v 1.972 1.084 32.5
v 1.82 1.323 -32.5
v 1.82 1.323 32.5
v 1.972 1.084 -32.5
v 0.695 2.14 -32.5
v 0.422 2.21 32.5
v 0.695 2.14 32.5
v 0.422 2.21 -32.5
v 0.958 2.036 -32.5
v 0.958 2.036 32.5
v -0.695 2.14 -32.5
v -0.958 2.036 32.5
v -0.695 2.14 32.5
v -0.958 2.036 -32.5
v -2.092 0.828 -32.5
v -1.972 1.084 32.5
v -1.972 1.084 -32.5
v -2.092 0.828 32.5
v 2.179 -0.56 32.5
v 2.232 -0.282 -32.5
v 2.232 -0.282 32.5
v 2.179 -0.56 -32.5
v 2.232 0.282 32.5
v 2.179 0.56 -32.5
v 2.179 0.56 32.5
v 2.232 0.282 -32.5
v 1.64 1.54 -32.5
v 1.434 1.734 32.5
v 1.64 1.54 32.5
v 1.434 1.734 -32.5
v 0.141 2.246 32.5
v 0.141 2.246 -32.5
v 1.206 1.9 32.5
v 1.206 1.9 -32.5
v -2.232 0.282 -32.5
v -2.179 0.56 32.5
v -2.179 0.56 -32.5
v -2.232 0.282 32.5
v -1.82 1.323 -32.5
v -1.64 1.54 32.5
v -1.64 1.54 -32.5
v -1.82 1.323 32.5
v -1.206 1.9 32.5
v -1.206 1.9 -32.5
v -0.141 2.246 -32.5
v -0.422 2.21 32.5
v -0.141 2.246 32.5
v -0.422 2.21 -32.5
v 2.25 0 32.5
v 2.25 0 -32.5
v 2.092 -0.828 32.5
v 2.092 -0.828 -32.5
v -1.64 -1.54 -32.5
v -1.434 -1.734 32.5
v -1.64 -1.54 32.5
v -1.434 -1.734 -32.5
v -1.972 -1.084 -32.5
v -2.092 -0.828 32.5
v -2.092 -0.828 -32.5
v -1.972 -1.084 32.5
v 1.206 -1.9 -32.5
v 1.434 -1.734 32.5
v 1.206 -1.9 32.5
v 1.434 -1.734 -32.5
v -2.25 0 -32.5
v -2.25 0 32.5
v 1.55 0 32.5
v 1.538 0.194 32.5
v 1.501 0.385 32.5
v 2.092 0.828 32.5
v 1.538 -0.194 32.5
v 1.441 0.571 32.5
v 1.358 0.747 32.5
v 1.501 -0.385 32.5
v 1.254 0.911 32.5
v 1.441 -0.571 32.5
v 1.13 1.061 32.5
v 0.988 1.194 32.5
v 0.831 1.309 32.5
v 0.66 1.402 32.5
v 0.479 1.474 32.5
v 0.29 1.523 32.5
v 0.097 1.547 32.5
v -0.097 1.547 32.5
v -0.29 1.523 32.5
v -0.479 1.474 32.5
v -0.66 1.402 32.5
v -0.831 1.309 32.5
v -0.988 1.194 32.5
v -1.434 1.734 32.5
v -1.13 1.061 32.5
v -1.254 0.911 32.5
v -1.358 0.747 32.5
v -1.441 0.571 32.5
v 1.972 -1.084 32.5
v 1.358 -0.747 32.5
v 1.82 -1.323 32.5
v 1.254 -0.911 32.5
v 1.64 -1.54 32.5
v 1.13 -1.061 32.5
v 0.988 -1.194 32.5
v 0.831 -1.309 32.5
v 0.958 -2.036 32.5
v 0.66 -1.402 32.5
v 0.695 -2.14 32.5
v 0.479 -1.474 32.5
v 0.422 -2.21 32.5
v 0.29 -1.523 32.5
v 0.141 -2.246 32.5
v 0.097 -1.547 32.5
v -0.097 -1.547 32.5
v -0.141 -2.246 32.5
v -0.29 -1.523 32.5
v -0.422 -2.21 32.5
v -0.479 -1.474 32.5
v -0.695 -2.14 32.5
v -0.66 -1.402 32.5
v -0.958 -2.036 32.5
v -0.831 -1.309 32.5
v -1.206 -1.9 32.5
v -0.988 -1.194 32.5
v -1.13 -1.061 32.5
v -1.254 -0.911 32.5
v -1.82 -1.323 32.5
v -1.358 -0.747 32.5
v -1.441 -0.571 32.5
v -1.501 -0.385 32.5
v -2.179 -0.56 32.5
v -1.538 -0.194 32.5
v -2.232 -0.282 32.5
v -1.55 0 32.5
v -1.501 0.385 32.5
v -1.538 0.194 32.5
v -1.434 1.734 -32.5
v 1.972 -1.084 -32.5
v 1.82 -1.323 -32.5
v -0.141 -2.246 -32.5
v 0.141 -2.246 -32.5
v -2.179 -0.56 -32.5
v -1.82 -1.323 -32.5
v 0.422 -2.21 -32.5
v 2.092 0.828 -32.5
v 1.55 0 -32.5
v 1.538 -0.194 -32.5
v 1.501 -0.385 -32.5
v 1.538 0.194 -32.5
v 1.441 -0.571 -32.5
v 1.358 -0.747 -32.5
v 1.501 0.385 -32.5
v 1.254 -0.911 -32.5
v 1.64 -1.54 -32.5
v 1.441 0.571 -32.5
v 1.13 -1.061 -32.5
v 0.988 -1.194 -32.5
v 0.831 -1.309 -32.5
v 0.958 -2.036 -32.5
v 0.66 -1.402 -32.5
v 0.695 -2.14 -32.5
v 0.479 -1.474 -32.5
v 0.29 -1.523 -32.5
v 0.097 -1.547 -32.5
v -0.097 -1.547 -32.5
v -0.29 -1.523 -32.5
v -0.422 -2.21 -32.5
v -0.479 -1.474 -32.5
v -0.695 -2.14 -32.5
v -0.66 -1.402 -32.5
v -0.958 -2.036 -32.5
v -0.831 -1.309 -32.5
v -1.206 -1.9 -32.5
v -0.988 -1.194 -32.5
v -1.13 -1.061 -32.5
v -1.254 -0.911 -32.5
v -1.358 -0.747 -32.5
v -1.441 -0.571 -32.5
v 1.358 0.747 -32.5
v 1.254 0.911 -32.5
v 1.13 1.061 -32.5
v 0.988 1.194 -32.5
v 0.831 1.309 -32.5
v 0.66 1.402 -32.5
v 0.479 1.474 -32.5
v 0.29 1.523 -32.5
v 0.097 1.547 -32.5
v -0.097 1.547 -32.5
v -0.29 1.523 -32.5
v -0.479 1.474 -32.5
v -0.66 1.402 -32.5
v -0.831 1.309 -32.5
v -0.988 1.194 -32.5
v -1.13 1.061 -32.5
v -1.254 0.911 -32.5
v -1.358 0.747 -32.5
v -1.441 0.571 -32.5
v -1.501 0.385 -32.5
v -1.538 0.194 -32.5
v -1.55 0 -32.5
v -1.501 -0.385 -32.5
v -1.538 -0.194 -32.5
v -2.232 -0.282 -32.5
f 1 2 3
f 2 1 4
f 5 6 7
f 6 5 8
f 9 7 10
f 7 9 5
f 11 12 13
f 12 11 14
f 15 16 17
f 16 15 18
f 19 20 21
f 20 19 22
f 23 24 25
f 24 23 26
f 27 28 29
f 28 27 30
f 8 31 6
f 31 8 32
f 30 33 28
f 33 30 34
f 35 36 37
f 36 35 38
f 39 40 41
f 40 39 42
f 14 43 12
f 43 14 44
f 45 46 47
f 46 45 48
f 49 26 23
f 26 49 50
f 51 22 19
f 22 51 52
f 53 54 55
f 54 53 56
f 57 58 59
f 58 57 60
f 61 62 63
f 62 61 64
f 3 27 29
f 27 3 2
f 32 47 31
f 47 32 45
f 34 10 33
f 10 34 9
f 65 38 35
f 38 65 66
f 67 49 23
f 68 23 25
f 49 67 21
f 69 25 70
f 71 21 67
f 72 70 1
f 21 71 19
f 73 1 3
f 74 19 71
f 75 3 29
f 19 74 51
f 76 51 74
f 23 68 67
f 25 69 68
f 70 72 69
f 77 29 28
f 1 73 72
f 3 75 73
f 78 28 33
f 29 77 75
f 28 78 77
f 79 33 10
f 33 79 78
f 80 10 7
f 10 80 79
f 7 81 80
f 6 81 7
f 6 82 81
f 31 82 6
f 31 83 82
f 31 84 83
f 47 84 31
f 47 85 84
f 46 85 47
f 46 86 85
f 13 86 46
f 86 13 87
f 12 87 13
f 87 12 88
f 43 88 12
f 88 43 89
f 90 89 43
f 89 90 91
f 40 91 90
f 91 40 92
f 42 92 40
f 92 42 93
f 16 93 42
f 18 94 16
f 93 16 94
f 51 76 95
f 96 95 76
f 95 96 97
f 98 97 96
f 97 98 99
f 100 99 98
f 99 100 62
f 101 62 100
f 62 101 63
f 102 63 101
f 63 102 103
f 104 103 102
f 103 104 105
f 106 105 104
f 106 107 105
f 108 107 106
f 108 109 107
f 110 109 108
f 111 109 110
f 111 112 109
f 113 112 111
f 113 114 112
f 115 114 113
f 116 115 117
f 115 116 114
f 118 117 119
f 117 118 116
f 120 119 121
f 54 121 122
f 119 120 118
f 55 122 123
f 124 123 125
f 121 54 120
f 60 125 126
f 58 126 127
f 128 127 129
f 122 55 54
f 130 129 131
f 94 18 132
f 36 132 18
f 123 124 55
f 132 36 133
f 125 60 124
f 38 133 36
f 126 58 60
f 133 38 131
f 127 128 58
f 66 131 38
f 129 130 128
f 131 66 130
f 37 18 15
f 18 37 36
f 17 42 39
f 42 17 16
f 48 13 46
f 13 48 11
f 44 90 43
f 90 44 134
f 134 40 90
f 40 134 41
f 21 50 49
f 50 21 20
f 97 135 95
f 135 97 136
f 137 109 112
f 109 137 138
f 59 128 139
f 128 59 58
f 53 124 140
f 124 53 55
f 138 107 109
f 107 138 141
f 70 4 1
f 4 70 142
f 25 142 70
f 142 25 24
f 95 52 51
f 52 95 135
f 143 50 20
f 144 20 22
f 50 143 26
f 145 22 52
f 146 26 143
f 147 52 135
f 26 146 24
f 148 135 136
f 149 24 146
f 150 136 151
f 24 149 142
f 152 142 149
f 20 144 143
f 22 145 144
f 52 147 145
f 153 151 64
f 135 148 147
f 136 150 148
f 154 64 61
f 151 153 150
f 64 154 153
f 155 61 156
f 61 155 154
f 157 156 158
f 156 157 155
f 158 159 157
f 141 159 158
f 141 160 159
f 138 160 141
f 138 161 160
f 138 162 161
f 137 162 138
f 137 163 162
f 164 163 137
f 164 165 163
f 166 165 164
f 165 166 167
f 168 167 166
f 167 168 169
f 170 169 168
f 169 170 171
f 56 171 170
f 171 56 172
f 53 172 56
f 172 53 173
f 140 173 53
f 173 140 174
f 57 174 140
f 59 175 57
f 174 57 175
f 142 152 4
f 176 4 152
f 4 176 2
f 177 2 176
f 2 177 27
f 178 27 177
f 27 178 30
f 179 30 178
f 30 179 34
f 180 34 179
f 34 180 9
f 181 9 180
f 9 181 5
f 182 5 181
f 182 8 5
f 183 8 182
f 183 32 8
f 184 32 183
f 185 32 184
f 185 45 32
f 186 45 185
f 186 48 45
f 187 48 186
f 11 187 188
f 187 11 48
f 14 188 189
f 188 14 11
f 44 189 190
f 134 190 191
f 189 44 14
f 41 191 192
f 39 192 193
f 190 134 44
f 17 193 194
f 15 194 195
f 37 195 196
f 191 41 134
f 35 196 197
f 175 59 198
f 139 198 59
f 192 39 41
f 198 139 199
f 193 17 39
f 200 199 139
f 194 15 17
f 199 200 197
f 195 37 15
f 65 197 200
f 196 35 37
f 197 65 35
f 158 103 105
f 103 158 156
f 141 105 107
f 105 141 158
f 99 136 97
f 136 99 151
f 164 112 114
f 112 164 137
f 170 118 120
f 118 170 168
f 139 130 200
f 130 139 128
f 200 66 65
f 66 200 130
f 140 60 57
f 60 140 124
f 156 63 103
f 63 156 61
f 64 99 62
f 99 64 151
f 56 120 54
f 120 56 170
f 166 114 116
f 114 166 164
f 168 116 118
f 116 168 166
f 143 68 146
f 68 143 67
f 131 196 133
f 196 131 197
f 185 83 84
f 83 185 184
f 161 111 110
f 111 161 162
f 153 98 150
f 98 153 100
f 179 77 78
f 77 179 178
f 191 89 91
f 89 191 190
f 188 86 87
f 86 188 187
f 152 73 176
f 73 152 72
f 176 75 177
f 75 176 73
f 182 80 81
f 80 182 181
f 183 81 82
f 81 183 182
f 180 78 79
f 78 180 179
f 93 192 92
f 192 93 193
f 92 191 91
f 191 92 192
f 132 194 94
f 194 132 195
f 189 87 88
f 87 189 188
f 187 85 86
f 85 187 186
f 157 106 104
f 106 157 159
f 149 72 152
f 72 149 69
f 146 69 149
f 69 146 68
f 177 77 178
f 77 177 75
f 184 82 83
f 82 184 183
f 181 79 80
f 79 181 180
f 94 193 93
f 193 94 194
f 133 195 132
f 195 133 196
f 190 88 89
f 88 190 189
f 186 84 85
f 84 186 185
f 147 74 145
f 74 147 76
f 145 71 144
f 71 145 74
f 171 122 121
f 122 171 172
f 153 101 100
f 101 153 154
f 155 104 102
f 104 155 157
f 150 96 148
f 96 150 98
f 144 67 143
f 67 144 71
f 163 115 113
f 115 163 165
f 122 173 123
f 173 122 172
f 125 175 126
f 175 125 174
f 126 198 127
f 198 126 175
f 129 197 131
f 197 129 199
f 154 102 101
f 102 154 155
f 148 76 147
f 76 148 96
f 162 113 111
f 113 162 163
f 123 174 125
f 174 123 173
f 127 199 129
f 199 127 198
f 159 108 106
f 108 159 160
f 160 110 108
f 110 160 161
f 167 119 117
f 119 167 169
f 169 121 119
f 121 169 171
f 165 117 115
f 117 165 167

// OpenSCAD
$fn = 50;


difference() {
	union() {
		translate(v = [0, 0, -32.5000000000]) {
			cylinder(h = 65, r = 2.2500000000);
		}
	}
	union() {
		translate(v = [0, 0, -100.0000000000]) {
			cylinder(h = 200, r = 1.5500000000);
		}
	}
}
